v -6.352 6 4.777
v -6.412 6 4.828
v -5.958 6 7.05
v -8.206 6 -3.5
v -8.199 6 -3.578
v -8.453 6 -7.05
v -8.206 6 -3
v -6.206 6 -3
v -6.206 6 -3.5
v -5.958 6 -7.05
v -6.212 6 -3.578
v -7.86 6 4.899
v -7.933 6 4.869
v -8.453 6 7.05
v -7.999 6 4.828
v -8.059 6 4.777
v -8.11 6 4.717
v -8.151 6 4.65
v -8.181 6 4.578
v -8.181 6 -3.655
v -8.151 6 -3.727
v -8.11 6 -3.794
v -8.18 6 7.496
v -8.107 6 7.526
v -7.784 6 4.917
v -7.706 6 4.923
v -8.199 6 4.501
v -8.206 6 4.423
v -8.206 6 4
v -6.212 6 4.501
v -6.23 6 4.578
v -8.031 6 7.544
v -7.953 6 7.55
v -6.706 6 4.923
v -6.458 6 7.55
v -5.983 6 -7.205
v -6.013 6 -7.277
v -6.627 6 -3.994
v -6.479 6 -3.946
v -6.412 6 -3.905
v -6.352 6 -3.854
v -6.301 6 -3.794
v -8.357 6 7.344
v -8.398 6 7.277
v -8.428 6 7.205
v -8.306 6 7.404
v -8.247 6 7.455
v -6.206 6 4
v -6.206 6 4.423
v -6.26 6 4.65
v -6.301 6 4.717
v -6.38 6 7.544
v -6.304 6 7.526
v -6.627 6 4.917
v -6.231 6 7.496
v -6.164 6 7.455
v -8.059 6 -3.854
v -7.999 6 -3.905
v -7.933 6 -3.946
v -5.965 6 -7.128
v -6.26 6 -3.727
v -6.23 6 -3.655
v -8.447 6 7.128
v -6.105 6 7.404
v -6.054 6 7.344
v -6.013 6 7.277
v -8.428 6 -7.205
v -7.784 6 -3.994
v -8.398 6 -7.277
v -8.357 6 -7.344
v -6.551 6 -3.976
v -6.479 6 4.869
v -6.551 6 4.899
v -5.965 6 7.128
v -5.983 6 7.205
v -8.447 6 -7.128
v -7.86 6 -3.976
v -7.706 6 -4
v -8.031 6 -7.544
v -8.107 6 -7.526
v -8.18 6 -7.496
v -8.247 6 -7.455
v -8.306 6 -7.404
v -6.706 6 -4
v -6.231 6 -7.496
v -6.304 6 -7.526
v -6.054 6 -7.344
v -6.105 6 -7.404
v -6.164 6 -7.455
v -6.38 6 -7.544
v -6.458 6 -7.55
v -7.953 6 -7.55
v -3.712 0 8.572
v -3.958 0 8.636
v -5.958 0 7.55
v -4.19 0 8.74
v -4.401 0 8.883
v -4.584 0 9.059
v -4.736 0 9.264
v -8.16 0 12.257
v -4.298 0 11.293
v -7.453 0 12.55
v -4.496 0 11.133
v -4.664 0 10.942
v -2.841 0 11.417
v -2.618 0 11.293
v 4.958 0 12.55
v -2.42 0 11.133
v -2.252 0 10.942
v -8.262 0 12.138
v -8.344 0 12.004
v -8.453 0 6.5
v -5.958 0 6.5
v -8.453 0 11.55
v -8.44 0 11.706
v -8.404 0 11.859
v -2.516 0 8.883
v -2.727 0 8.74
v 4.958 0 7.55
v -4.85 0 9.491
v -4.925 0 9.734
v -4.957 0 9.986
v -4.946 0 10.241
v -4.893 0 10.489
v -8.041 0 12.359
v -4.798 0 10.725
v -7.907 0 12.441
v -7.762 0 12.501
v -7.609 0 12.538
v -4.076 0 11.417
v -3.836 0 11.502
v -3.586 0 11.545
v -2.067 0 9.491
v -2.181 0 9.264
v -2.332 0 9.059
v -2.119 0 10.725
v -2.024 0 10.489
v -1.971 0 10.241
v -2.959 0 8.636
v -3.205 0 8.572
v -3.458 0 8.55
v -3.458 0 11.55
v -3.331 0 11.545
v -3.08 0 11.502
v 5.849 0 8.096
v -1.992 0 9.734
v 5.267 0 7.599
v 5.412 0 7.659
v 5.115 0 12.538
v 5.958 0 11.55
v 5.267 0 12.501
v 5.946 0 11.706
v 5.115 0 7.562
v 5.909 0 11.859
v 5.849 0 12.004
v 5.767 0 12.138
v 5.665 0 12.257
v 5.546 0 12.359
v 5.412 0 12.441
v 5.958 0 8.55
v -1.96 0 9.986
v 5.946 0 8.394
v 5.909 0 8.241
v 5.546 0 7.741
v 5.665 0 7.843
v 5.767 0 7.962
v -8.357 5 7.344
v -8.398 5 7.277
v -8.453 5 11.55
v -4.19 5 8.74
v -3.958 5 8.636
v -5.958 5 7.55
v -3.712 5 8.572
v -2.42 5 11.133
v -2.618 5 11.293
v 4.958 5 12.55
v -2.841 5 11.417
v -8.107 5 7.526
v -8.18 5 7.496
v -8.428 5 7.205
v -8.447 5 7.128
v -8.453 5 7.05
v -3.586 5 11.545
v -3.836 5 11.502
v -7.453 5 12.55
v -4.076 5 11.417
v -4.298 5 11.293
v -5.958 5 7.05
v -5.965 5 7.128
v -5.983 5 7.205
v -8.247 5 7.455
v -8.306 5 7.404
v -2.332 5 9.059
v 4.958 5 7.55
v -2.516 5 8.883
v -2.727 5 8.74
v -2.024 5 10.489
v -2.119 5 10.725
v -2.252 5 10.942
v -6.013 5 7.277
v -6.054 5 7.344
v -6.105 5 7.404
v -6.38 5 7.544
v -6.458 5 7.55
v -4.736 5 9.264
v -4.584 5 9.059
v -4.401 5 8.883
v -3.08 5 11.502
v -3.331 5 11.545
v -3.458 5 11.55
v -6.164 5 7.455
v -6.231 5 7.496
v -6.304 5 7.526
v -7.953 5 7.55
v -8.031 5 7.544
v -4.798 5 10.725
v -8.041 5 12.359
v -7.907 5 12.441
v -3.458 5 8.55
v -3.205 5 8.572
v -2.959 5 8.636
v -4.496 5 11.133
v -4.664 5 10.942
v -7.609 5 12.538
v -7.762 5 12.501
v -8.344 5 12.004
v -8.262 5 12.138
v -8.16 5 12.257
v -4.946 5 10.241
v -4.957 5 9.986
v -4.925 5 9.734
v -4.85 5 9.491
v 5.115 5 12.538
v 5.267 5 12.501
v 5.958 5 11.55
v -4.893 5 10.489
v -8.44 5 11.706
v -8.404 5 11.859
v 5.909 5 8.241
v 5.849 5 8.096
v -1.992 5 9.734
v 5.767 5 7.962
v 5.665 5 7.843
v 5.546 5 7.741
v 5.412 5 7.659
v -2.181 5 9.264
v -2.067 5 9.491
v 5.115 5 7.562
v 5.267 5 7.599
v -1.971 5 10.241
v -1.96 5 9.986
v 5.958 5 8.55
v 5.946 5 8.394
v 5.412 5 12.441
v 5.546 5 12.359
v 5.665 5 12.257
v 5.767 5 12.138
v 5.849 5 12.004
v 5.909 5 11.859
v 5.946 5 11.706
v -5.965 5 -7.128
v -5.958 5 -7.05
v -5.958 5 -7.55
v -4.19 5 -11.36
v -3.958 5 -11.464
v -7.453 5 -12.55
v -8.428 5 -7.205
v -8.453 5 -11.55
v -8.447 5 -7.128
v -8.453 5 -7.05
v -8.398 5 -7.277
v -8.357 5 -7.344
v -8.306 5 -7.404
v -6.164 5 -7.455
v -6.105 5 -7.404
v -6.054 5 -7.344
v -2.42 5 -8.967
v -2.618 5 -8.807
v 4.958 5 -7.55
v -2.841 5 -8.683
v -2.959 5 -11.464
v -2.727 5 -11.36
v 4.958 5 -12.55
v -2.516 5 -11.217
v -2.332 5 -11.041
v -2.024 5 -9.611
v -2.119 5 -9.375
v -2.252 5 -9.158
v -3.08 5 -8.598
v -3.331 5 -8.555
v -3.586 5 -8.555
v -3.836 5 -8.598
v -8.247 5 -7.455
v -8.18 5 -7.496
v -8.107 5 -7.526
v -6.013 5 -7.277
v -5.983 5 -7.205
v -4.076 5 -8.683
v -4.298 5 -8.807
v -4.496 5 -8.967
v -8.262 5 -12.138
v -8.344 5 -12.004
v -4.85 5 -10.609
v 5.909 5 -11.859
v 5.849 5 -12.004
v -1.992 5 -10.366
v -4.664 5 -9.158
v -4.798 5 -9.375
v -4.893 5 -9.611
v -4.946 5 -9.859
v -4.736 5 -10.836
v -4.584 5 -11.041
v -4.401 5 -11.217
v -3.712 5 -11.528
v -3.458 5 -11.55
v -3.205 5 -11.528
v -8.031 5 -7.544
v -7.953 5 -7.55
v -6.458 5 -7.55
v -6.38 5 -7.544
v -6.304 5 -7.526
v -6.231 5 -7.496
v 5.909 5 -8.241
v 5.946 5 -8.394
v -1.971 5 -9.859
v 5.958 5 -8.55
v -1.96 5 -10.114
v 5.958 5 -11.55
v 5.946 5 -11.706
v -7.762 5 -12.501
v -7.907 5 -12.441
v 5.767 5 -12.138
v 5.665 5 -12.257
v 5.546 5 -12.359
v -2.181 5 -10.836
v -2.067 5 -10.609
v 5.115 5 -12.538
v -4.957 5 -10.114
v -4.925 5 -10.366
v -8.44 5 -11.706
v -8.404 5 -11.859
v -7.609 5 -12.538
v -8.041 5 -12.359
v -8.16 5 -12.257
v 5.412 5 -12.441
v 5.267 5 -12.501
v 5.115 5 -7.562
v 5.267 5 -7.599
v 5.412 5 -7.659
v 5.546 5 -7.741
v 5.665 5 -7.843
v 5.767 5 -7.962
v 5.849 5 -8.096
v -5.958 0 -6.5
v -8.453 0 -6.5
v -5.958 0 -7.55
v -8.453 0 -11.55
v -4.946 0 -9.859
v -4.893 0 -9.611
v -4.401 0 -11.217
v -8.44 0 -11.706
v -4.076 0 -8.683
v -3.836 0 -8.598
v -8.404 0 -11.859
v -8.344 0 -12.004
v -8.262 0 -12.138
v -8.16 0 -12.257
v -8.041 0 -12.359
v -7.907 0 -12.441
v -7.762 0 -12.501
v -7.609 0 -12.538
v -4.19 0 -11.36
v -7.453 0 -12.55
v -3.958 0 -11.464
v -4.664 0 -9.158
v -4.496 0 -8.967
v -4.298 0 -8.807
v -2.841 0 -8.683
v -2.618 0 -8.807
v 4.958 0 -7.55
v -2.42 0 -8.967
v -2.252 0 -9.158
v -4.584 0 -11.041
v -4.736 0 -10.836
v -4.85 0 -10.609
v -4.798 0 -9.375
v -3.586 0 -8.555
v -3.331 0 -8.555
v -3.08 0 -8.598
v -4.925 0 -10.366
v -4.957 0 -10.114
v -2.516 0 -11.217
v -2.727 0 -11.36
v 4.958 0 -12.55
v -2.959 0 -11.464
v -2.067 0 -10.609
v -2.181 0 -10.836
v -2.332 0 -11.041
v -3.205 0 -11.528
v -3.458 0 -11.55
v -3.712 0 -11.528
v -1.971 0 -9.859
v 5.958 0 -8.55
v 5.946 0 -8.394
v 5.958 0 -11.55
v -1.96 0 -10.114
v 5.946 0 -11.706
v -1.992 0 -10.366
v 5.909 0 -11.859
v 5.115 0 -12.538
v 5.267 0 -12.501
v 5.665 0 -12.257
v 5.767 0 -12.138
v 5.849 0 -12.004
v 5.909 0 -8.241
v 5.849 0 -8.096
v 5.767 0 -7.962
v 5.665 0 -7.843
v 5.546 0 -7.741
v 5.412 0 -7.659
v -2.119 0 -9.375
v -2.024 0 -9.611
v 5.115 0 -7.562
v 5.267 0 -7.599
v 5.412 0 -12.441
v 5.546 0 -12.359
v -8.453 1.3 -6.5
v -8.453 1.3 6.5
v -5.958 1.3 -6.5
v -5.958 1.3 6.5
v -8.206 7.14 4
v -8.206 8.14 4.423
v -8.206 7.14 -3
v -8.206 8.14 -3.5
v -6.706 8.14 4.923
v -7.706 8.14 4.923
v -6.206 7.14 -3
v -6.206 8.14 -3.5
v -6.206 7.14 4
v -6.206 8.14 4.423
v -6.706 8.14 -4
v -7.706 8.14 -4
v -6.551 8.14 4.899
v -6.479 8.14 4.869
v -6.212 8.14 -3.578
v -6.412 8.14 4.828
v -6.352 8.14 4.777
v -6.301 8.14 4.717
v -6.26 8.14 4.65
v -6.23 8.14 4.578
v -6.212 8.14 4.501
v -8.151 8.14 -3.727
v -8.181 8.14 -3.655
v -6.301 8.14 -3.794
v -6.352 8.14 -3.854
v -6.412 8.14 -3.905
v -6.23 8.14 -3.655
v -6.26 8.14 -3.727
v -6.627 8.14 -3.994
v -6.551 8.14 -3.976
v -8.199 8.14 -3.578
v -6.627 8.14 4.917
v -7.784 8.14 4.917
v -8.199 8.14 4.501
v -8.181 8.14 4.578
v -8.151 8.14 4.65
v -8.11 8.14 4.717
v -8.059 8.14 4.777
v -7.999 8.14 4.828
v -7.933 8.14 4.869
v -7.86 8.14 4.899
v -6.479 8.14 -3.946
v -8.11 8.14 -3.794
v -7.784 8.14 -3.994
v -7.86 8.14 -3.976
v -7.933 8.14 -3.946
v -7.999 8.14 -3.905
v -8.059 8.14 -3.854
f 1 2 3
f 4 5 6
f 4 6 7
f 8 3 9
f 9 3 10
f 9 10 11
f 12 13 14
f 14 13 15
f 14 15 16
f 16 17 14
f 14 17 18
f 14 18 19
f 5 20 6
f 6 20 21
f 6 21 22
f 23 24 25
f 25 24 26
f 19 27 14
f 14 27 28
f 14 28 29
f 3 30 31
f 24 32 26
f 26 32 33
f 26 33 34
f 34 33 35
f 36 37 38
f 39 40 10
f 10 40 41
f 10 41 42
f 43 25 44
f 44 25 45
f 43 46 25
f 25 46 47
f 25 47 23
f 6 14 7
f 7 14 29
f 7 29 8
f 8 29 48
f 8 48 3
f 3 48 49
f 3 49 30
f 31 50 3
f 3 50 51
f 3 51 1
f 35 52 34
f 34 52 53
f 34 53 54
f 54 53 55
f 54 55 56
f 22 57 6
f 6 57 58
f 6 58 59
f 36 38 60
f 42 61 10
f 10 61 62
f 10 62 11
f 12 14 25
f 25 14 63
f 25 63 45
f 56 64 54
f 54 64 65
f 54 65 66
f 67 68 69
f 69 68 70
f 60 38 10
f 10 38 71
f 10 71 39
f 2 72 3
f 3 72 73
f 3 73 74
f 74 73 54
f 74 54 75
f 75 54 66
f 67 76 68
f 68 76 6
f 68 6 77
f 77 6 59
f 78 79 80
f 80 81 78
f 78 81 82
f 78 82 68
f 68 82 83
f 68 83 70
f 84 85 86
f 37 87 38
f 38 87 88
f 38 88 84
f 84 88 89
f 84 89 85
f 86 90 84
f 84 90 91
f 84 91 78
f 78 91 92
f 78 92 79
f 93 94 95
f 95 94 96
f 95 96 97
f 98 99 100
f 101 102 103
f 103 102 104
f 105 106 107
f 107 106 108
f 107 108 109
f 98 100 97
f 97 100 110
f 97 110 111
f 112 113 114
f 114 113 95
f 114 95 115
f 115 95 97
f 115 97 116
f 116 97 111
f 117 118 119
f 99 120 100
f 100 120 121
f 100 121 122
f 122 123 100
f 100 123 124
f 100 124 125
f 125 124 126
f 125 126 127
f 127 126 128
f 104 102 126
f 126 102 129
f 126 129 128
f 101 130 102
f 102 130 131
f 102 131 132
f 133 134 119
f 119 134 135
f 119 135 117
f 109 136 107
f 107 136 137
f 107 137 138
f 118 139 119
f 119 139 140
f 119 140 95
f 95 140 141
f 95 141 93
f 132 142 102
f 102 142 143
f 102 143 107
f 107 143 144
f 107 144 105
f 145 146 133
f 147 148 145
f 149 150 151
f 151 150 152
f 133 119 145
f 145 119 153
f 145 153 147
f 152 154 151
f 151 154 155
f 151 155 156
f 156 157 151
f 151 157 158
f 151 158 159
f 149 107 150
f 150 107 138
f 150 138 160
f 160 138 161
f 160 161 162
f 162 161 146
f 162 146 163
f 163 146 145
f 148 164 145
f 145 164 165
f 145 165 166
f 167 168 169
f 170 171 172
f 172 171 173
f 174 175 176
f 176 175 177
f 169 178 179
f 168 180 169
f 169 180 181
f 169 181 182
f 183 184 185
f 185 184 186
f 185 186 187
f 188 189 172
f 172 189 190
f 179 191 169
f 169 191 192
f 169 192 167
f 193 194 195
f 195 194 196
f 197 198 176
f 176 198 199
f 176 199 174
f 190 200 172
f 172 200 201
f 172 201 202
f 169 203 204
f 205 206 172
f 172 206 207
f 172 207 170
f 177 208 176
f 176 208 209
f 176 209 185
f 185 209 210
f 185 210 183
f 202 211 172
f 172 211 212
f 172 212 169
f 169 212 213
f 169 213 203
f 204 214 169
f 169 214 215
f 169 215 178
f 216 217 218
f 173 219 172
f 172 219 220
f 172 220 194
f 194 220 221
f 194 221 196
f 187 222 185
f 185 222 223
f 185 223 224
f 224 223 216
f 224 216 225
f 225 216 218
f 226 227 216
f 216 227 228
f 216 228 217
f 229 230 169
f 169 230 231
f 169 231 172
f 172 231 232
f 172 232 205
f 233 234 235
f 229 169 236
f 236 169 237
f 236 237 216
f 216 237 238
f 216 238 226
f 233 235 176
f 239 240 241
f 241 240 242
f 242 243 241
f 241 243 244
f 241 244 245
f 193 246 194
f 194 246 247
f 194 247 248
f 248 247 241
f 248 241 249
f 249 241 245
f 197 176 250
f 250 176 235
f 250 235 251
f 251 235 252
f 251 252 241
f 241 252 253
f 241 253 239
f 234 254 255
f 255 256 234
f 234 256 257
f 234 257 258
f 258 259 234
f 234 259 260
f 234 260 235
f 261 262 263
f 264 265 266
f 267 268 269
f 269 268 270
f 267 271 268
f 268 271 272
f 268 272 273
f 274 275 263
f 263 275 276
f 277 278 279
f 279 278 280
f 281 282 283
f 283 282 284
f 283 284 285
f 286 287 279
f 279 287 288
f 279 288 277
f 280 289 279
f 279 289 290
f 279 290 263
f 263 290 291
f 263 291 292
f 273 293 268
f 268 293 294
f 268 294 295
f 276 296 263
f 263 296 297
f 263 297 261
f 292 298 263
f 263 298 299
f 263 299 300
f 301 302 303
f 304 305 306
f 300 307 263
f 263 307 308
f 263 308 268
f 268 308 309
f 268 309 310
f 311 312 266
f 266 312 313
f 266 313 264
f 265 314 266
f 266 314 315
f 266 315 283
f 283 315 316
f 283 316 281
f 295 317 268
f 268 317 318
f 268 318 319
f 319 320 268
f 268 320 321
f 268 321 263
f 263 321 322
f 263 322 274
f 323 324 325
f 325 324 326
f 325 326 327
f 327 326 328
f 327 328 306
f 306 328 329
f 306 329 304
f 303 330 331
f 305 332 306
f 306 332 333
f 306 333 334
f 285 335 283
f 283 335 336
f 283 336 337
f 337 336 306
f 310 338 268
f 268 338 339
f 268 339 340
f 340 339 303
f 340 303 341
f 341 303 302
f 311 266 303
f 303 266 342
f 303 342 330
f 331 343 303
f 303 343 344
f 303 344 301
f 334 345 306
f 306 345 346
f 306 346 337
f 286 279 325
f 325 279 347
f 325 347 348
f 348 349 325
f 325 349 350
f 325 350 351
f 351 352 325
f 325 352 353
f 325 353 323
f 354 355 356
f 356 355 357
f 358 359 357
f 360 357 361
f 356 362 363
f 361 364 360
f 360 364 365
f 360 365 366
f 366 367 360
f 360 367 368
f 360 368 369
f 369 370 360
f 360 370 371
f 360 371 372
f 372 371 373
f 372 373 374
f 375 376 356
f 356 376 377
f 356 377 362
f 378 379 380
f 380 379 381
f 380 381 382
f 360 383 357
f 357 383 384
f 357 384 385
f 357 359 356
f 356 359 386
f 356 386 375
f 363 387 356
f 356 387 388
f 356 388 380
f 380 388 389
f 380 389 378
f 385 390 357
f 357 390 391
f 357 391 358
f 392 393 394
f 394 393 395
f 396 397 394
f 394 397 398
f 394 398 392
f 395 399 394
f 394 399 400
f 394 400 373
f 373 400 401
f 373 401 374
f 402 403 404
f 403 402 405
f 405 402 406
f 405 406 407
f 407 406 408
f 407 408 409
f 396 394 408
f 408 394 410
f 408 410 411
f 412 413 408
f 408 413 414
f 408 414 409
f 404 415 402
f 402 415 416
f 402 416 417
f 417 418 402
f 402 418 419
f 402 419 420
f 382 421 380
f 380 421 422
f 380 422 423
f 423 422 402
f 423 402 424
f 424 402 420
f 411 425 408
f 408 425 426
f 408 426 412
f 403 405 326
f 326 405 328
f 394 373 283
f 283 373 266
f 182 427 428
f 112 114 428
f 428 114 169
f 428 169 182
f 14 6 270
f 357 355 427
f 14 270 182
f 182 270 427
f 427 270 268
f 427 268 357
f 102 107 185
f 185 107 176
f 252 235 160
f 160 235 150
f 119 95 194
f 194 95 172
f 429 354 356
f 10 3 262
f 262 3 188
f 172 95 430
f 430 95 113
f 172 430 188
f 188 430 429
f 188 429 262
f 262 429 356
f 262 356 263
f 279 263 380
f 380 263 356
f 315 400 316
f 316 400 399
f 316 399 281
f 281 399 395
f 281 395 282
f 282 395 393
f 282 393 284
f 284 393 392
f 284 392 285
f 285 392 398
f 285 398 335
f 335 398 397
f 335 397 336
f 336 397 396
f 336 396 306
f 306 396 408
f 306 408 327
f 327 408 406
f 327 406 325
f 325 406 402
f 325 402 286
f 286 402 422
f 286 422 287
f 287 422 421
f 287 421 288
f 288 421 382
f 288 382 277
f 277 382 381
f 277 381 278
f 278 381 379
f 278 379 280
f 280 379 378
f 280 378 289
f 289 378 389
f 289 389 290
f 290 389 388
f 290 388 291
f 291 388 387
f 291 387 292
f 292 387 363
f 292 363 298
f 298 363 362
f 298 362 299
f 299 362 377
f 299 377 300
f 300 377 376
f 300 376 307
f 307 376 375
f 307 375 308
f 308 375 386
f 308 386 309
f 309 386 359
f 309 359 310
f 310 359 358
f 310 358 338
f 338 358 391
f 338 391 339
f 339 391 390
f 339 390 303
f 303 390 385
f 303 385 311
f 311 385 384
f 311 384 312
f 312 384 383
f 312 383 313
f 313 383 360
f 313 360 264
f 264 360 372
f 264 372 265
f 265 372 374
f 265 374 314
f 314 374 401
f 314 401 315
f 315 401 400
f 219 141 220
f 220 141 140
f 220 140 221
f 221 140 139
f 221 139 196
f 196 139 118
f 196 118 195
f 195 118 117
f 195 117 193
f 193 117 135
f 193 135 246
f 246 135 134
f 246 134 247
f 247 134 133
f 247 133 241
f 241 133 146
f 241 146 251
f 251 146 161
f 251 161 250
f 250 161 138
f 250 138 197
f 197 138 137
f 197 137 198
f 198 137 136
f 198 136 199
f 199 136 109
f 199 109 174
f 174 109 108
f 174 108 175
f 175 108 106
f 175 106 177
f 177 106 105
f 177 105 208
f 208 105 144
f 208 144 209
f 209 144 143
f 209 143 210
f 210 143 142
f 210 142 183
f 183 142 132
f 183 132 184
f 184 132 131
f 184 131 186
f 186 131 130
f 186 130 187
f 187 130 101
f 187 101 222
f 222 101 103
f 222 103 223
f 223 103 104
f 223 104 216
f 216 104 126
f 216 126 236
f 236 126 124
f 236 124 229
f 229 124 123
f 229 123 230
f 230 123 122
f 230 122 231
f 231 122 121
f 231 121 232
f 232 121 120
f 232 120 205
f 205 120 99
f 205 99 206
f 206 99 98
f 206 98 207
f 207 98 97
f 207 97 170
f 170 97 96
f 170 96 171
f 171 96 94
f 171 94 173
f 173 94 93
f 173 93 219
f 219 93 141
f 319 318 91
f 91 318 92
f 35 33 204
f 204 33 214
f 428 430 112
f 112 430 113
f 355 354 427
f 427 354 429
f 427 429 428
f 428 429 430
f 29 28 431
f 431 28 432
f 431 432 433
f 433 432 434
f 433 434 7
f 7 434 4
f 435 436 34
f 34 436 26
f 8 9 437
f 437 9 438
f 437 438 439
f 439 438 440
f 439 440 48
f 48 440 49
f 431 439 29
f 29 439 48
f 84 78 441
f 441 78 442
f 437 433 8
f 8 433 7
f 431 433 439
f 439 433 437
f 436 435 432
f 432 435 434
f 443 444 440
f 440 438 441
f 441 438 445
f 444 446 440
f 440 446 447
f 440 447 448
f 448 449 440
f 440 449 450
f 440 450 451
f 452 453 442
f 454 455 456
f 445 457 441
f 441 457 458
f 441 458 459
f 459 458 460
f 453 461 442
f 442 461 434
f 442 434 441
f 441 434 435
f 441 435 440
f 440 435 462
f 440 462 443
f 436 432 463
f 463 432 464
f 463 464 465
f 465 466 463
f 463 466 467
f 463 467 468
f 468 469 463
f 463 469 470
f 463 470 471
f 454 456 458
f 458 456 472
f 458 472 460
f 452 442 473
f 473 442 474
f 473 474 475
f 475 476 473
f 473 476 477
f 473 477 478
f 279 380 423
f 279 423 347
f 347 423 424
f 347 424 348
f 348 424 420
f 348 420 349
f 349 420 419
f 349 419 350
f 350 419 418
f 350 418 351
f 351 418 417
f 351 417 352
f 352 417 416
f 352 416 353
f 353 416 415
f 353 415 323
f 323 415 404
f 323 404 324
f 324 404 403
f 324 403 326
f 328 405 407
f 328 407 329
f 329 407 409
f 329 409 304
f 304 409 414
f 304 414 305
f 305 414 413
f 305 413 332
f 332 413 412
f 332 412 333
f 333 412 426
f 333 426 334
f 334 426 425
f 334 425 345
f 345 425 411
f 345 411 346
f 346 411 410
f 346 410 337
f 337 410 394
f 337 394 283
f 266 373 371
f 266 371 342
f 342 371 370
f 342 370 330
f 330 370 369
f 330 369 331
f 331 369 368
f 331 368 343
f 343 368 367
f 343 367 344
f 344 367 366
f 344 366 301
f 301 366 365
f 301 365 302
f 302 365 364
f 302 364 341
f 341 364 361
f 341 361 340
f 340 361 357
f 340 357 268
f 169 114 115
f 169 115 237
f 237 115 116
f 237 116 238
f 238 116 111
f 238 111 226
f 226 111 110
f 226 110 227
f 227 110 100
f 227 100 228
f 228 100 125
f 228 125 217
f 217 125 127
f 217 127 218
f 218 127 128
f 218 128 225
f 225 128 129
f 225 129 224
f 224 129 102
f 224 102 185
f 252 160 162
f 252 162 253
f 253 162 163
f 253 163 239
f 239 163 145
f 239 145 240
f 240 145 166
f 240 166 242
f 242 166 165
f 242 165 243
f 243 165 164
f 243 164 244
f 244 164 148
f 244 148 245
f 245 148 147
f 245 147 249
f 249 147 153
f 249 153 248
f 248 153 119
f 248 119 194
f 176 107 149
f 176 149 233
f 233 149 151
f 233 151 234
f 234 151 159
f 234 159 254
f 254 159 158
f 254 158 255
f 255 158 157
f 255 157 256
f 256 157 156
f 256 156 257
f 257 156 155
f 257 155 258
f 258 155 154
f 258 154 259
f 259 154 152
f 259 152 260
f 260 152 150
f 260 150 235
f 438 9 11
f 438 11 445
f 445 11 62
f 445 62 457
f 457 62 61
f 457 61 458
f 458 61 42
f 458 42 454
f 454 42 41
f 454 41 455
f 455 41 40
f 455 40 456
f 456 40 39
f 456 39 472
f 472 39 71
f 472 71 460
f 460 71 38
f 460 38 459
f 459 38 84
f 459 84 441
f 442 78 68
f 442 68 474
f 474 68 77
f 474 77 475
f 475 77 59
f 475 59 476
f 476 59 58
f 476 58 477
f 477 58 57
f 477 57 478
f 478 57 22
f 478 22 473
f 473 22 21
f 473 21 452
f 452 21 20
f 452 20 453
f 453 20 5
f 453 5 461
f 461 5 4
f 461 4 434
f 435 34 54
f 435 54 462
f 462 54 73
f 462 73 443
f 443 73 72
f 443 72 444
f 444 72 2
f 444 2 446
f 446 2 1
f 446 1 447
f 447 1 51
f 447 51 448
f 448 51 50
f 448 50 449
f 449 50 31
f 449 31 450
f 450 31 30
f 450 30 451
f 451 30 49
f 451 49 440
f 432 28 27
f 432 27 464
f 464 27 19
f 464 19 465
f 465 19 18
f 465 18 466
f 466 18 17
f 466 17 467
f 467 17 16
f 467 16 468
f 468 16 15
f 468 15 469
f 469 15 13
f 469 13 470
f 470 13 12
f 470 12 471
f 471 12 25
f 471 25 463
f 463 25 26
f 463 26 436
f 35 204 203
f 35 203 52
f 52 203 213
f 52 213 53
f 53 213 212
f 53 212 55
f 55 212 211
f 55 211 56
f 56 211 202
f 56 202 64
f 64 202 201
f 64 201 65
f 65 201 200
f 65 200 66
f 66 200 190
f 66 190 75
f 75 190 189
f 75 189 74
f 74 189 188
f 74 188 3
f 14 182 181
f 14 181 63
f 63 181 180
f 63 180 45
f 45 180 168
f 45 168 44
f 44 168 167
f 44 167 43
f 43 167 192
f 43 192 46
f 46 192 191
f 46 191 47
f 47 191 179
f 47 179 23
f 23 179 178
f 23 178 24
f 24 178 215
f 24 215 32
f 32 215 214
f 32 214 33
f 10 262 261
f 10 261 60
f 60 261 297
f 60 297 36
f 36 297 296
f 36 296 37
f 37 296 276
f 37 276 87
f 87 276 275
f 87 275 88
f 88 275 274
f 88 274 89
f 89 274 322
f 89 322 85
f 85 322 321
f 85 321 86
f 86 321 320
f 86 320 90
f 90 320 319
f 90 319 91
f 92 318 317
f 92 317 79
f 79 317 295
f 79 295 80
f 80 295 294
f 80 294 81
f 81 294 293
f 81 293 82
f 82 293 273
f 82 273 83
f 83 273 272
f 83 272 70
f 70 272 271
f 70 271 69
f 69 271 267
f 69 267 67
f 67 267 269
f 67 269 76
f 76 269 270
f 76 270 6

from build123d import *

# Parameters (mm, degrees)
SKETCH1_R           = 1.5
BOSS_EXTRUDE1_DEPTH = 5
SKETCH2_W           = 2.494401268
SKETCH2_H           = 15.1
BOSS_EXTRUDE2_DEPTH = 1
SKETCH3_W           = 13
SKETCH3_H           = 1.3
CUT_EXTRUDE1_DEPTH  = 21.029562163
SKETCH4_W           = 2
SKETCH4_H           = 0.923045376
SKETCH4_H_2         = 1
BOSS_EXTRUDE3_DEPTH = 1.14
SKETCH5_W           = 2
SKETCH5_H           = 8.923045376
BOSS_EXTRUDE4_DEPTH = 1
FILLET1_R           = 1
FILLET2_R           = 0.5


with BuildPart() as part:
    # Sketch1 → Boss-Extrude1 (new body)
    with BuildSketch(Plane(origin=(0, 0, 0), x_dir=(1, 0, 0), z_dir=(0, 1, 0))):
        Polygon((5.958367707, 12.55), (-5.958367707, 12.55), (-8.452768975, 12.55), (-8.452768975, -12.55), (-5.958367707, -12.55), (5.958367707, -12.55), (5.958367707, -7.55), (-5.958367707, -7.55), (-5.958367707, 7.55), (5.958367707, 7.55), align=None)
        with Locations(Location((-3.458367707, -10.05, 0), (0, 0, 270))):
            Circle(SKETCH1_R, mode=Mode.SUBTRACT)
        with Locations(Location((-3.458367707, 10.05, 0), (0, 0, 90))):
            Circle(SKETCH1_R, mode=Mode.SUBTRACT)
    extrude(amount=BOSS_EXTRUDE1_DEPTH)

    # Sketch2 → Boss-Extrude2 (add)
    with BuildSketch(Plane(origin=(0, 5, 0), x_dir=(1, 0, 0), z_dir=(0, 1, 0))):
        with Locations((-7.205568341, 0)):
            Rectangle(SKETCH2_W, SKETCH2_H)
    extrude(amount=BOSS_EXTRUDE2_DEPTH)

    # Sketch3 → Cut-Extrude1 (cut, through all)
    with BuildSketch(Plane.ZY.offset(8.452768975)):
        with Locations((0, 0.65)):
            Rectangle(SKETCH3_W, SKETCH3_H)
    extrude(amount=-CUT_EXTRUDE1_DEPTH, mode=Mode.SUBTRACT)

    # Sketch4 → Boss-Extrude3 (add)
    with BuildSketch(Plane(origin=(0, 6, 0), x_dir=(1, 0, 0), z_dir=(0, 1, 0))):
        with Locations((-7.205568341, -4.461522688)):
            Rectangle(SKETCH4_W, SKETCH4_H)
        with Locations((-7.205568341, 3.5)):
            Rectangle(SKETCH4_W, SKETCH4_H_2)
    extrude(amount=BOSS_EXTRUDE3_DEPTH)

    # Sketch5 → Boss-Extrude4 (add)
    with BuildSketch(Plane(origin=(0, 7.14, 0), x_dir=(1, 0, 0), z_dir=(0, 1, 0))):
        with Locations((-7.205568341, -0.461522688)):
            Rectangle(SKETCH5_W, SKETCH5_H)
    extrude(amount=BOSS_EXTRUDE4_DEPTH)

    # Fillet1
    fillet1_edges = [part.edges().sort_by_distance(p)[0] for p in [
        (5.958367707, 2.5, -7.55),
        (5.958367707, 2.5, 7.55),
        (5.958367707, 2.5, 12.55),
        (-8.452768975, 2.5, 12.55),
        (-8.452768975, 2.5, -12.55),
        (5.958367707, 2.5, -12.55),
    ]]
    fillet(fillet1_edges, radius=FILLET1_R)

    # Fillet2
    fillet2_edges = [part.edges().sort_by_distance(p)[0] for p in [
        (-5.958367707, 5.5, 7.55),
        (-5.958367707, 5.5, -7.55),
        (-8.452768975, 5.5, -7.55),
        (-8.452768975, 5.5, 7.55),
        (-8.205568341, 7.07, 4.923045376),
        (-6.205568341, 7.07, 4.923045376),
        (-6.205568341, 7.07, -4),
        (-8.205568341, 7.07, -4),
    ]]
    fillet(fillet2_edges, radius=FILLET2_R)


solid = part.part
